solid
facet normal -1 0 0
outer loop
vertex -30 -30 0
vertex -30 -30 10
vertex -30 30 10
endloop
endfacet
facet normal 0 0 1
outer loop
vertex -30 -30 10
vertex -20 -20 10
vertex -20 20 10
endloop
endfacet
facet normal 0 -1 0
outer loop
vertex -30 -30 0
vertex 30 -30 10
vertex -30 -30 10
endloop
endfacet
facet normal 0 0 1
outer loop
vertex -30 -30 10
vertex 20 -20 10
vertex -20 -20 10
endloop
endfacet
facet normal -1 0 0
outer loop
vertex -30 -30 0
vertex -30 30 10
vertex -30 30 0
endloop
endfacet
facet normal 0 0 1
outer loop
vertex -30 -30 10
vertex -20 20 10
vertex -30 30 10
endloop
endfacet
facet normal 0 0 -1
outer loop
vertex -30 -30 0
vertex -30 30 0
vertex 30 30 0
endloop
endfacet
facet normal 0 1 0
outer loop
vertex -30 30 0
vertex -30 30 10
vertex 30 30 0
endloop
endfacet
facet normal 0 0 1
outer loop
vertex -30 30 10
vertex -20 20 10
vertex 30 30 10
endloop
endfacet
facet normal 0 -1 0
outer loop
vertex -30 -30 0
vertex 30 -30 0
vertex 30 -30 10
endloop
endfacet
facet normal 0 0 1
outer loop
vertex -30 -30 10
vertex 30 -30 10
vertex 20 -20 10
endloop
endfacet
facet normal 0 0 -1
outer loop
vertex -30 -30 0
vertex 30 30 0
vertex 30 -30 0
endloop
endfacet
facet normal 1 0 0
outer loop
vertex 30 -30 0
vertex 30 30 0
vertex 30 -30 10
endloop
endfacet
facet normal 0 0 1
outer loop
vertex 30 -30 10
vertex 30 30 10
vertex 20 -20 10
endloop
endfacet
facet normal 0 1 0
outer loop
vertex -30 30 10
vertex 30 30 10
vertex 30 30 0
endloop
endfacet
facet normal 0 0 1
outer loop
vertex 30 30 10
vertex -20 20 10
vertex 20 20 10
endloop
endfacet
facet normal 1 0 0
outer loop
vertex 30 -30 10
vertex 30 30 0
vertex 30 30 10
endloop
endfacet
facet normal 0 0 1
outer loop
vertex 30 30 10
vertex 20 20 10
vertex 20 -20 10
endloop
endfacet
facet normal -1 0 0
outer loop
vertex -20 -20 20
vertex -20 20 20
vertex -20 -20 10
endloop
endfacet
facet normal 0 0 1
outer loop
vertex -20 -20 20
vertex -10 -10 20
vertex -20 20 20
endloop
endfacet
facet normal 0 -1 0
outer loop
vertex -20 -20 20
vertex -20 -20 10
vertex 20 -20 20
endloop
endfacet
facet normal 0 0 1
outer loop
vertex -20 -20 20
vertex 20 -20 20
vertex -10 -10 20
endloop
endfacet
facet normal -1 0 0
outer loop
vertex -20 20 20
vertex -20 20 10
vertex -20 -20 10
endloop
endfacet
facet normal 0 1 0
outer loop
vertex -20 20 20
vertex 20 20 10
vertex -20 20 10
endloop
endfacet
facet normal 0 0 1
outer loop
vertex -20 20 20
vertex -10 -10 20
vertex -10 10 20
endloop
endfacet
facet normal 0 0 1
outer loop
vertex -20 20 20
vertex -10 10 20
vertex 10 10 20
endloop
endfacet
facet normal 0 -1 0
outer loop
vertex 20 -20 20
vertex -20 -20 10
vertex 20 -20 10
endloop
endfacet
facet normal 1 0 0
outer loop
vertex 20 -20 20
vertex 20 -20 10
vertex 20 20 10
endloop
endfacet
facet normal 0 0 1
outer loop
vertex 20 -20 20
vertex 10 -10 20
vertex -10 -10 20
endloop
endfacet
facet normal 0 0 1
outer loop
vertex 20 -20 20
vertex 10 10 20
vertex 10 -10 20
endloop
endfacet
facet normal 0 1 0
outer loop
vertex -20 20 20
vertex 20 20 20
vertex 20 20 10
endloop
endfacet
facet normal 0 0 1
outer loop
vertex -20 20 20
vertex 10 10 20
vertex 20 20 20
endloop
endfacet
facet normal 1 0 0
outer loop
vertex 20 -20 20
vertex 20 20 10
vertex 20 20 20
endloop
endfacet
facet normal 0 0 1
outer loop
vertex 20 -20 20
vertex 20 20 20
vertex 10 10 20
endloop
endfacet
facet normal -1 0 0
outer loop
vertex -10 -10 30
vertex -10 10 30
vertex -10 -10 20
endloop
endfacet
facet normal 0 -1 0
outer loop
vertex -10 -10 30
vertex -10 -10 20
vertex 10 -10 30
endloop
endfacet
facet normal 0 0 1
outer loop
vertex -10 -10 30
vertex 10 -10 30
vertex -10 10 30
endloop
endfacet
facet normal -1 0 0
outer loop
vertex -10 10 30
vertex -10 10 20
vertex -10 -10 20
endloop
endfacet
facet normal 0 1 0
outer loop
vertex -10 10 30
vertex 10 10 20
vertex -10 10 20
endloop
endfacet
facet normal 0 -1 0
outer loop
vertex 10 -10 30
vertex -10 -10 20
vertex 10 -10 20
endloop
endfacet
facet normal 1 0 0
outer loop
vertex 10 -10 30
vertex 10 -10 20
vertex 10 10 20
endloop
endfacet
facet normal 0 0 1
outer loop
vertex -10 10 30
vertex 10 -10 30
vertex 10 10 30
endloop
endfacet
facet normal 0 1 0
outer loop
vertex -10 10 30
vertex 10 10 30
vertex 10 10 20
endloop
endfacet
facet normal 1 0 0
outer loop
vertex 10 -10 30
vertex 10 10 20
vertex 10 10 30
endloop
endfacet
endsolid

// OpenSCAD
// 3段の階段状ピラミッド（中心揃えで積み上げ）

$fn = 50;

base_size = 60;
mid_size  = 40;
top_size  = 20;

h = 10;

module plate(size, z) {
    cube([size, size, h], center = false);
    translate([0, 0, z]) children();
}

module step_stack() {
    // 底板（60x60x10）
    translate([-base_size/2, -base_size/2, 0])
        cube([base_size, base_size, h], center=false);

    // 中板（40x40x10）を底板の上へ（高さ +10）
    translate([-mid_size/2, -mid_size/2, h])
        cube([mid_size, mid_size, h], center=false);

    // 上板（20x20x10）を中板の上へ（高さ +20）
    translate([-top_size/2, -top_size/2, 2*h])
        cube([top_size, top_size, h], center=false);
}

step_stack();
